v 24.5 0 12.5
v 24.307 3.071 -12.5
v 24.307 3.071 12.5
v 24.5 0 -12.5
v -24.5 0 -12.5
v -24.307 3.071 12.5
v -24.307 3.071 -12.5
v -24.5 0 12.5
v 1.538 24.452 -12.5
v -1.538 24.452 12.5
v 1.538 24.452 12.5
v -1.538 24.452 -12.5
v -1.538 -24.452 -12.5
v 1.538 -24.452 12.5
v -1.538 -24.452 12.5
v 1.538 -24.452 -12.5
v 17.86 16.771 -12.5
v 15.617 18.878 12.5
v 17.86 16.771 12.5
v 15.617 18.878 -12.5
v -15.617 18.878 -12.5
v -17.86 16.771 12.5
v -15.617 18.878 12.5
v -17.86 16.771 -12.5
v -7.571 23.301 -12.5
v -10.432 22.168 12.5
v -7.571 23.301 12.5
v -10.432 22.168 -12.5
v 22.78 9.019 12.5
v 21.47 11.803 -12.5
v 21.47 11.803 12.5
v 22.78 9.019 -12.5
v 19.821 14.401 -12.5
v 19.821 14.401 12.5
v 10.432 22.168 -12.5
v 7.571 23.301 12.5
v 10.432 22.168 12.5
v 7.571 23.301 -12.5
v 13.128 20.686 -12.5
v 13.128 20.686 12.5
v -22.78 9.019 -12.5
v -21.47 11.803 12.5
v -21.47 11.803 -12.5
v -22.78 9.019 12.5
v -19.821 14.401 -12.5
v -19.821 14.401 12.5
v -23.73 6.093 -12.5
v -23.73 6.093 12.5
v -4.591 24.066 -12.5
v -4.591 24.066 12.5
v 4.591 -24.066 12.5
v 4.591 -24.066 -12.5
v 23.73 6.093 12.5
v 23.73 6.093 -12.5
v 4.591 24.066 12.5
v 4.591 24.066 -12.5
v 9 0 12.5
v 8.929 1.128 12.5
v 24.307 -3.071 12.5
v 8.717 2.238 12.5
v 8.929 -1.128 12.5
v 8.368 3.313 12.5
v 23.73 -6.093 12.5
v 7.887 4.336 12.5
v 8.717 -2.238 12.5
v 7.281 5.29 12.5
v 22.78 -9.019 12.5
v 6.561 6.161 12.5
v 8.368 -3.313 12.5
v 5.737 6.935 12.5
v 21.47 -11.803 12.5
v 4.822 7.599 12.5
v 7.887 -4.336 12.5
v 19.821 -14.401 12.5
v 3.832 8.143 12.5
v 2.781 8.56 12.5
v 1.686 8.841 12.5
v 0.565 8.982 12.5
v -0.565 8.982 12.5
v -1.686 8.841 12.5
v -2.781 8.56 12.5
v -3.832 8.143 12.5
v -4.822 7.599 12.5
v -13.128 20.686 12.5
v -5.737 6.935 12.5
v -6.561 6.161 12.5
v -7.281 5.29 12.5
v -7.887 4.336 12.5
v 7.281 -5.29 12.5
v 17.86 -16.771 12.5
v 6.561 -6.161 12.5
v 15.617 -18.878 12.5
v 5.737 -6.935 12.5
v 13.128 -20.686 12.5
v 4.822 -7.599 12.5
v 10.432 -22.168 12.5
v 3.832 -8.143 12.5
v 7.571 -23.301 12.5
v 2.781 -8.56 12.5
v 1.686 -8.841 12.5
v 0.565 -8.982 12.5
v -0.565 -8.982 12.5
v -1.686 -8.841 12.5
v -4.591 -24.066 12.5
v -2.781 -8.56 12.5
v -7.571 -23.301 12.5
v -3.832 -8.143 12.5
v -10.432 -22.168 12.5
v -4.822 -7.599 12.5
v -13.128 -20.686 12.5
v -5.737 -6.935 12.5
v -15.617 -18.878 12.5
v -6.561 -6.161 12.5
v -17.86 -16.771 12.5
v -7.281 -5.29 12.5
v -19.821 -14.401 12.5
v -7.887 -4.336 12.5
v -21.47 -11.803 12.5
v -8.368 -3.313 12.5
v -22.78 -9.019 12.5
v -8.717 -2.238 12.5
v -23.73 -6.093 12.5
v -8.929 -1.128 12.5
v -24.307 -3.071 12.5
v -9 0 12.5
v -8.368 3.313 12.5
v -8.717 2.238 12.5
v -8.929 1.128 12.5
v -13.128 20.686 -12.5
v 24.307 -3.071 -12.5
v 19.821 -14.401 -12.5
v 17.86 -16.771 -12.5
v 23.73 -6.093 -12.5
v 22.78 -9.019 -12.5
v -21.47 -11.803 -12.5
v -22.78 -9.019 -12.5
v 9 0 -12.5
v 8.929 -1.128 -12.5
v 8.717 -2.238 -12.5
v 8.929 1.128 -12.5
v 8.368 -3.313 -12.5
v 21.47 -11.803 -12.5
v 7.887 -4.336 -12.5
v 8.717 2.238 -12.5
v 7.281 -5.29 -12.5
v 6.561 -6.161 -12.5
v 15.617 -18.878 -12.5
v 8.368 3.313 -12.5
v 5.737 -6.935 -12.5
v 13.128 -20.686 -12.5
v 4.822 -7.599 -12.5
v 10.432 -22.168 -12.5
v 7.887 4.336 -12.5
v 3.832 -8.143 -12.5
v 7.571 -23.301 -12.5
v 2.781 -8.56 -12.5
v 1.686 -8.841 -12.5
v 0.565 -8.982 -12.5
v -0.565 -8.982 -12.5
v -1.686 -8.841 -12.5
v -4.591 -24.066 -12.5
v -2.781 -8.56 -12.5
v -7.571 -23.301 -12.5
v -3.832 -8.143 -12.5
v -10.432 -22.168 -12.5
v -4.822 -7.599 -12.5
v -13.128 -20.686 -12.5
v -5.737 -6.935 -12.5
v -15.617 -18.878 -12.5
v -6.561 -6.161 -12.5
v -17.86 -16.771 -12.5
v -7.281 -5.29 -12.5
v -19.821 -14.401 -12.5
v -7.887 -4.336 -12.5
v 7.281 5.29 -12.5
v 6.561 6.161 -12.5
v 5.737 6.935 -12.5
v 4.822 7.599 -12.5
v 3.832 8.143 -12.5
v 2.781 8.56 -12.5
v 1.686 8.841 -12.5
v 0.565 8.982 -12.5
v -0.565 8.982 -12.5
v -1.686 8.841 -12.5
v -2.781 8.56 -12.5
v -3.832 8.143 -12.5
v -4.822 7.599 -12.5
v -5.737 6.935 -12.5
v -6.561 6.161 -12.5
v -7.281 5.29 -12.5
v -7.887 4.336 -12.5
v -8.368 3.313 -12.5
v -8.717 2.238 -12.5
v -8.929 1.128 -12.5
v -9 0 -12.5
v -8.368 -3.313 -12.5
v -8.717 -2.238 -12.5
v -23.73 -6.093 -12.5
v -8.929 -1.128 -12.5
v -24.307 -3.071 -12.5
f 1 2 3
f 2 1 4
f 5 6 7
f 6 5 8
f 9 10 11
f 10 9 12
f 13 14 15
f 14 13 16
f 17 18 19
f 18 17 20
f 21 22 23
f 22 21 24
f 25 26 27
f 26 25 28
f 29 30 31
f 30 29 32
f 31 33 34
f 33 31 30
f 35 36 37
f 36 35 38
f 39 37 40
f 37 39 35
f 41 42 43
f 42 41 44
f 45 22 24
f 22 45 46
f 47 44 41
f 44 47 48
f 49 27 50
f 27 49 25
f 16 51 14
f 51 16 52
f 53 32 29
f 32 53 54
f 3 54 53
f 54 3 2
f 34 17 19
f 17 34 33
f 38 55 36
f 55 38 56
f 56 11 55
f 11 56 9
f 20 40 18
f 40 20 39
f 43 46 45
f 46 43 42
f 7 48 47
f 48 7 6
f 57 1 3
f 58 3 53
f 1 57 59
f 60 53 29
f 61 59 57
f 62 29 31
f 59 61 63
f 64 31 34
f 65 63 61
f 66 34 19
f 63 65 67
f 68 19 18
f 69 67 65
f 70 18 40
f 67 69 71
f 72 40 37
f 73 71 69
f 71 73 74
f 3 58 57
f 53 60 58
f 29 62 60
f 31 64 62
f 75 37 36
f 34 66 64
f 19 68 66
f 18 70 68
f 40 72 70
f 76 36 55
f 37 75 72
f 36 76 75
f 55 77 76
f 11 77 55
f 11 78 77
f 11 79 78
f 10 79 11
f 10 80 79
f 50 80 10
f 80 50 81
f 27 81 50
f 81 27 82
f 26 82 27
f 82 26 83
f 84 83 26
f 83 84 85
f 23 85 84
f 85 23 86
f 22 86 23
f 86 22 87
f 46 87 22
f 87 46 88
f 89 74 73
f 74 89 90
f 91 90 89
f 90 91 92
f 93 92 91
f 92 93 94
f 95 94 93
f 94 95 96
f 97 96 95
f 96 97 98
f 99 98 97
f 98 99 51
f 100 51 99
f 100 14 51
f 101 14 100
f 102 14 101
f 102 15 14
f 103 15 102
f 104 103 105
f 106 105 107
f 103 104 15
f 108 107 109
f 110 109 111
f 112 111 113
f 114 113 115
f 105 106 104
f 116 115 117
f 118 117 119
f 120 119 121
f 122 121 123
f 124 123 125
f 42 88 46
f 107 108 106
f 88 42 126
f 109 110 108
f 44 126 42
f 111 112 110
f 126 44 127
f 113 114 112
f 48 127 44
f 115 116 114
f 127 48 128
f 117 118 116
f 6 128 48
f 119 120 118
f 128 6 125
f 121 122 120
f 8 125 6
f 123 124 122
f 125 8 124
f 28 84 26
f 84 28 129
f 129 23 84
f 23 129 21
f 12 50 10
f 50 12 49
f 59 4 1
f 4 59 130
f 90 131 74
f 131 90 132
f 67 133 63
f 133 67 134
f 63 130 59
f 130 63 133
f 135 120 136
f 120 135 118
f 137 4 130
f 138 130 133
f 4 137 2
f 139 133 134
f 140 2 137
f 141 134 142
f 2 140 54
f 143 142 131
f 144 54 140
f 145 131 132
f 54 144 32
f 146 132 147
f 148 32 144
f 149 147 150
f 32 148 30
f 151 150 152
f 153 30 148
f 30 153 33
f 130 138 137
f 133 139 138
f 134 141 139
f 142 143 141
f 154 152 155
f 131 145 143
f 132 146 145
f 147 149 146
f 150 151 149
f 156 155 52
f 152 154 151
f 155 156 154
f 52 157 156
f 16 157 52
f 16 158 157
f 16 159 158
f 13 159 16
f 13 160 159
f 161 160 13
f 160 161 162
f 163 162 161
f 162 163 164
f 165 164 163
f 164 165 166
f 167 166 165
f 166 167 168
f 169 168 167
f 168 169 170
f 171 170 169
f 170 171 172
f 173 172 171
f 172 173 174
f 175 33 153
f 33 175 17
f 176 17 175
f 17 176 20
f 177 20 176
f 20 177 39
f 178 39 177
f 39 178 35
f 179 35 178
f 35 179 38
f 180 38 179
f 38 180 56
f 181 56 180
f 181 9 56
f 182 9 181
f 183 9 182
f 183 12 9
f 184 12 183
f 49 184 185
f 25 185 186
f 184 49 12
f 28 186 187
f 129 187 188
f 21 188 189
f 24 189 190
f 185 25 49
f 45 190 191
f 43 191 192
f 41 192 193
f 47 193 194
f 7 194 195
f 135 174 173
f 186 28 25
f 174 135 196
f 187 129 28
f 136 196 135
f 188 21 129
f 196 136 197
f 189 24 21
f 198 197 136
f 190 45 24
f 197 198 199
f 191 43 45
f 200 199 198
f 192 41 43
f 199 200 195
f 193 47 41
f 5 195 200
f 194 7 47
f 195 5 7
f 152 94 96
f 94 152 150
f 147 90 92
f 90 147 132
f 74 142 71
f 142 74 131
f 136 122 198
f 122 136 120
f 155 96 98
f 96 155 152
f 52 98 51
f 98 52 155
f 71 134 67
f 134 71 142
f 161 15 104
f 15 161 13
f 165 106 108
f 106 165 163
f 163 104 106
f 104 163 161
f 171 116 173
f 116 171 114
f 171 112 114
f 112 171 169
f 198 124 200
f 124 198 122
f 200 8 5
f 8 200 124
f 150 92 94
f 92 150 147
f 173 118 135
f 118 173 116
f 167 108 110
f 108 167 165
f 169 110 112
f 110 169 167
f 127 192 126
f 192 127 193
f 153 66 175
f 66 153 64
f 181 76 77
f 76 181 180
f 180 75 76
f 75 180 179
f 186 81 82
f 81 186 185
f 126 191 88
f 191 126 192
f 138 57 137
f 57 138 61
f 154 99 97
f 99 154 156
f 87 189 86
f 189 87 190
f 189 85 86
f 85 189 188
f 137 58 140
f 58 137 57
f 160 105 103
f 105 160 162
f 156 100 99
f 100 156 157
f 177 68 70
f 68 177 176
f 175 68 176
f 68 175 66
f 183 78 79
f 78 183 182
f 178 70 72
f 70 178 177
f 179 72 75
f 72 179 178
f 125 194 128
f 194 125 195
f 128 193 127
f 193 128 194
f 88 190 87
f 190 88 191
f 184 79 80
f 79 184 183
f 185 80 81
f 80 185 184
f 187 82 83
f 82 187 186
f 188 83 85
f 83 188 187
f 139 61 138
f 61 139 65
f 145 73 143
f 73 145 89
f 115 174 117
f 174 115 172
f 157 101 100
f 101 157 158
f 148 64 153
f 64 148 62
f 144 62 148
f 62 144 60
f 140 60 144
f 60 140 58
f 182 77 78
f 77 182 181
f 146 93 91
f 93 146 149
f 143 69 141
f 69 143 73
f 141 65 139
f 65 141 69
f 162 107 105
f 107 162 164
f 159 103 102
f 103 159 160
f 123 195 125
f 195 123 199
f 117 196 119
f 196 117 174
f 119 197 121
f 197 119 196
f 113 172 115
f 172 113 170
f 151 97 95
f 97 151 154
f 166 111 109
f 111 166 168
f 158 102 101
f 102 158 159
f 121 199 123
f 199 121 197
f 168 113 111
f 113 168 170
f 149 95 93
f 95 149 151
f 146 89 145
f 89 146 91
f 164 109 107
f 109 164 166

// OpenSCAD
$fn = 50;


difference() {
	union() {
		translate(v = [0, 0, -12.5000000000]) {
			cylinder(h = 25, r = 24.5000000000);
		}
	}
	union() {
		translate(v = [0, 0, -100.0000000000]) {
			cylinder(h = 200, r = 9);
		}
	}
}
